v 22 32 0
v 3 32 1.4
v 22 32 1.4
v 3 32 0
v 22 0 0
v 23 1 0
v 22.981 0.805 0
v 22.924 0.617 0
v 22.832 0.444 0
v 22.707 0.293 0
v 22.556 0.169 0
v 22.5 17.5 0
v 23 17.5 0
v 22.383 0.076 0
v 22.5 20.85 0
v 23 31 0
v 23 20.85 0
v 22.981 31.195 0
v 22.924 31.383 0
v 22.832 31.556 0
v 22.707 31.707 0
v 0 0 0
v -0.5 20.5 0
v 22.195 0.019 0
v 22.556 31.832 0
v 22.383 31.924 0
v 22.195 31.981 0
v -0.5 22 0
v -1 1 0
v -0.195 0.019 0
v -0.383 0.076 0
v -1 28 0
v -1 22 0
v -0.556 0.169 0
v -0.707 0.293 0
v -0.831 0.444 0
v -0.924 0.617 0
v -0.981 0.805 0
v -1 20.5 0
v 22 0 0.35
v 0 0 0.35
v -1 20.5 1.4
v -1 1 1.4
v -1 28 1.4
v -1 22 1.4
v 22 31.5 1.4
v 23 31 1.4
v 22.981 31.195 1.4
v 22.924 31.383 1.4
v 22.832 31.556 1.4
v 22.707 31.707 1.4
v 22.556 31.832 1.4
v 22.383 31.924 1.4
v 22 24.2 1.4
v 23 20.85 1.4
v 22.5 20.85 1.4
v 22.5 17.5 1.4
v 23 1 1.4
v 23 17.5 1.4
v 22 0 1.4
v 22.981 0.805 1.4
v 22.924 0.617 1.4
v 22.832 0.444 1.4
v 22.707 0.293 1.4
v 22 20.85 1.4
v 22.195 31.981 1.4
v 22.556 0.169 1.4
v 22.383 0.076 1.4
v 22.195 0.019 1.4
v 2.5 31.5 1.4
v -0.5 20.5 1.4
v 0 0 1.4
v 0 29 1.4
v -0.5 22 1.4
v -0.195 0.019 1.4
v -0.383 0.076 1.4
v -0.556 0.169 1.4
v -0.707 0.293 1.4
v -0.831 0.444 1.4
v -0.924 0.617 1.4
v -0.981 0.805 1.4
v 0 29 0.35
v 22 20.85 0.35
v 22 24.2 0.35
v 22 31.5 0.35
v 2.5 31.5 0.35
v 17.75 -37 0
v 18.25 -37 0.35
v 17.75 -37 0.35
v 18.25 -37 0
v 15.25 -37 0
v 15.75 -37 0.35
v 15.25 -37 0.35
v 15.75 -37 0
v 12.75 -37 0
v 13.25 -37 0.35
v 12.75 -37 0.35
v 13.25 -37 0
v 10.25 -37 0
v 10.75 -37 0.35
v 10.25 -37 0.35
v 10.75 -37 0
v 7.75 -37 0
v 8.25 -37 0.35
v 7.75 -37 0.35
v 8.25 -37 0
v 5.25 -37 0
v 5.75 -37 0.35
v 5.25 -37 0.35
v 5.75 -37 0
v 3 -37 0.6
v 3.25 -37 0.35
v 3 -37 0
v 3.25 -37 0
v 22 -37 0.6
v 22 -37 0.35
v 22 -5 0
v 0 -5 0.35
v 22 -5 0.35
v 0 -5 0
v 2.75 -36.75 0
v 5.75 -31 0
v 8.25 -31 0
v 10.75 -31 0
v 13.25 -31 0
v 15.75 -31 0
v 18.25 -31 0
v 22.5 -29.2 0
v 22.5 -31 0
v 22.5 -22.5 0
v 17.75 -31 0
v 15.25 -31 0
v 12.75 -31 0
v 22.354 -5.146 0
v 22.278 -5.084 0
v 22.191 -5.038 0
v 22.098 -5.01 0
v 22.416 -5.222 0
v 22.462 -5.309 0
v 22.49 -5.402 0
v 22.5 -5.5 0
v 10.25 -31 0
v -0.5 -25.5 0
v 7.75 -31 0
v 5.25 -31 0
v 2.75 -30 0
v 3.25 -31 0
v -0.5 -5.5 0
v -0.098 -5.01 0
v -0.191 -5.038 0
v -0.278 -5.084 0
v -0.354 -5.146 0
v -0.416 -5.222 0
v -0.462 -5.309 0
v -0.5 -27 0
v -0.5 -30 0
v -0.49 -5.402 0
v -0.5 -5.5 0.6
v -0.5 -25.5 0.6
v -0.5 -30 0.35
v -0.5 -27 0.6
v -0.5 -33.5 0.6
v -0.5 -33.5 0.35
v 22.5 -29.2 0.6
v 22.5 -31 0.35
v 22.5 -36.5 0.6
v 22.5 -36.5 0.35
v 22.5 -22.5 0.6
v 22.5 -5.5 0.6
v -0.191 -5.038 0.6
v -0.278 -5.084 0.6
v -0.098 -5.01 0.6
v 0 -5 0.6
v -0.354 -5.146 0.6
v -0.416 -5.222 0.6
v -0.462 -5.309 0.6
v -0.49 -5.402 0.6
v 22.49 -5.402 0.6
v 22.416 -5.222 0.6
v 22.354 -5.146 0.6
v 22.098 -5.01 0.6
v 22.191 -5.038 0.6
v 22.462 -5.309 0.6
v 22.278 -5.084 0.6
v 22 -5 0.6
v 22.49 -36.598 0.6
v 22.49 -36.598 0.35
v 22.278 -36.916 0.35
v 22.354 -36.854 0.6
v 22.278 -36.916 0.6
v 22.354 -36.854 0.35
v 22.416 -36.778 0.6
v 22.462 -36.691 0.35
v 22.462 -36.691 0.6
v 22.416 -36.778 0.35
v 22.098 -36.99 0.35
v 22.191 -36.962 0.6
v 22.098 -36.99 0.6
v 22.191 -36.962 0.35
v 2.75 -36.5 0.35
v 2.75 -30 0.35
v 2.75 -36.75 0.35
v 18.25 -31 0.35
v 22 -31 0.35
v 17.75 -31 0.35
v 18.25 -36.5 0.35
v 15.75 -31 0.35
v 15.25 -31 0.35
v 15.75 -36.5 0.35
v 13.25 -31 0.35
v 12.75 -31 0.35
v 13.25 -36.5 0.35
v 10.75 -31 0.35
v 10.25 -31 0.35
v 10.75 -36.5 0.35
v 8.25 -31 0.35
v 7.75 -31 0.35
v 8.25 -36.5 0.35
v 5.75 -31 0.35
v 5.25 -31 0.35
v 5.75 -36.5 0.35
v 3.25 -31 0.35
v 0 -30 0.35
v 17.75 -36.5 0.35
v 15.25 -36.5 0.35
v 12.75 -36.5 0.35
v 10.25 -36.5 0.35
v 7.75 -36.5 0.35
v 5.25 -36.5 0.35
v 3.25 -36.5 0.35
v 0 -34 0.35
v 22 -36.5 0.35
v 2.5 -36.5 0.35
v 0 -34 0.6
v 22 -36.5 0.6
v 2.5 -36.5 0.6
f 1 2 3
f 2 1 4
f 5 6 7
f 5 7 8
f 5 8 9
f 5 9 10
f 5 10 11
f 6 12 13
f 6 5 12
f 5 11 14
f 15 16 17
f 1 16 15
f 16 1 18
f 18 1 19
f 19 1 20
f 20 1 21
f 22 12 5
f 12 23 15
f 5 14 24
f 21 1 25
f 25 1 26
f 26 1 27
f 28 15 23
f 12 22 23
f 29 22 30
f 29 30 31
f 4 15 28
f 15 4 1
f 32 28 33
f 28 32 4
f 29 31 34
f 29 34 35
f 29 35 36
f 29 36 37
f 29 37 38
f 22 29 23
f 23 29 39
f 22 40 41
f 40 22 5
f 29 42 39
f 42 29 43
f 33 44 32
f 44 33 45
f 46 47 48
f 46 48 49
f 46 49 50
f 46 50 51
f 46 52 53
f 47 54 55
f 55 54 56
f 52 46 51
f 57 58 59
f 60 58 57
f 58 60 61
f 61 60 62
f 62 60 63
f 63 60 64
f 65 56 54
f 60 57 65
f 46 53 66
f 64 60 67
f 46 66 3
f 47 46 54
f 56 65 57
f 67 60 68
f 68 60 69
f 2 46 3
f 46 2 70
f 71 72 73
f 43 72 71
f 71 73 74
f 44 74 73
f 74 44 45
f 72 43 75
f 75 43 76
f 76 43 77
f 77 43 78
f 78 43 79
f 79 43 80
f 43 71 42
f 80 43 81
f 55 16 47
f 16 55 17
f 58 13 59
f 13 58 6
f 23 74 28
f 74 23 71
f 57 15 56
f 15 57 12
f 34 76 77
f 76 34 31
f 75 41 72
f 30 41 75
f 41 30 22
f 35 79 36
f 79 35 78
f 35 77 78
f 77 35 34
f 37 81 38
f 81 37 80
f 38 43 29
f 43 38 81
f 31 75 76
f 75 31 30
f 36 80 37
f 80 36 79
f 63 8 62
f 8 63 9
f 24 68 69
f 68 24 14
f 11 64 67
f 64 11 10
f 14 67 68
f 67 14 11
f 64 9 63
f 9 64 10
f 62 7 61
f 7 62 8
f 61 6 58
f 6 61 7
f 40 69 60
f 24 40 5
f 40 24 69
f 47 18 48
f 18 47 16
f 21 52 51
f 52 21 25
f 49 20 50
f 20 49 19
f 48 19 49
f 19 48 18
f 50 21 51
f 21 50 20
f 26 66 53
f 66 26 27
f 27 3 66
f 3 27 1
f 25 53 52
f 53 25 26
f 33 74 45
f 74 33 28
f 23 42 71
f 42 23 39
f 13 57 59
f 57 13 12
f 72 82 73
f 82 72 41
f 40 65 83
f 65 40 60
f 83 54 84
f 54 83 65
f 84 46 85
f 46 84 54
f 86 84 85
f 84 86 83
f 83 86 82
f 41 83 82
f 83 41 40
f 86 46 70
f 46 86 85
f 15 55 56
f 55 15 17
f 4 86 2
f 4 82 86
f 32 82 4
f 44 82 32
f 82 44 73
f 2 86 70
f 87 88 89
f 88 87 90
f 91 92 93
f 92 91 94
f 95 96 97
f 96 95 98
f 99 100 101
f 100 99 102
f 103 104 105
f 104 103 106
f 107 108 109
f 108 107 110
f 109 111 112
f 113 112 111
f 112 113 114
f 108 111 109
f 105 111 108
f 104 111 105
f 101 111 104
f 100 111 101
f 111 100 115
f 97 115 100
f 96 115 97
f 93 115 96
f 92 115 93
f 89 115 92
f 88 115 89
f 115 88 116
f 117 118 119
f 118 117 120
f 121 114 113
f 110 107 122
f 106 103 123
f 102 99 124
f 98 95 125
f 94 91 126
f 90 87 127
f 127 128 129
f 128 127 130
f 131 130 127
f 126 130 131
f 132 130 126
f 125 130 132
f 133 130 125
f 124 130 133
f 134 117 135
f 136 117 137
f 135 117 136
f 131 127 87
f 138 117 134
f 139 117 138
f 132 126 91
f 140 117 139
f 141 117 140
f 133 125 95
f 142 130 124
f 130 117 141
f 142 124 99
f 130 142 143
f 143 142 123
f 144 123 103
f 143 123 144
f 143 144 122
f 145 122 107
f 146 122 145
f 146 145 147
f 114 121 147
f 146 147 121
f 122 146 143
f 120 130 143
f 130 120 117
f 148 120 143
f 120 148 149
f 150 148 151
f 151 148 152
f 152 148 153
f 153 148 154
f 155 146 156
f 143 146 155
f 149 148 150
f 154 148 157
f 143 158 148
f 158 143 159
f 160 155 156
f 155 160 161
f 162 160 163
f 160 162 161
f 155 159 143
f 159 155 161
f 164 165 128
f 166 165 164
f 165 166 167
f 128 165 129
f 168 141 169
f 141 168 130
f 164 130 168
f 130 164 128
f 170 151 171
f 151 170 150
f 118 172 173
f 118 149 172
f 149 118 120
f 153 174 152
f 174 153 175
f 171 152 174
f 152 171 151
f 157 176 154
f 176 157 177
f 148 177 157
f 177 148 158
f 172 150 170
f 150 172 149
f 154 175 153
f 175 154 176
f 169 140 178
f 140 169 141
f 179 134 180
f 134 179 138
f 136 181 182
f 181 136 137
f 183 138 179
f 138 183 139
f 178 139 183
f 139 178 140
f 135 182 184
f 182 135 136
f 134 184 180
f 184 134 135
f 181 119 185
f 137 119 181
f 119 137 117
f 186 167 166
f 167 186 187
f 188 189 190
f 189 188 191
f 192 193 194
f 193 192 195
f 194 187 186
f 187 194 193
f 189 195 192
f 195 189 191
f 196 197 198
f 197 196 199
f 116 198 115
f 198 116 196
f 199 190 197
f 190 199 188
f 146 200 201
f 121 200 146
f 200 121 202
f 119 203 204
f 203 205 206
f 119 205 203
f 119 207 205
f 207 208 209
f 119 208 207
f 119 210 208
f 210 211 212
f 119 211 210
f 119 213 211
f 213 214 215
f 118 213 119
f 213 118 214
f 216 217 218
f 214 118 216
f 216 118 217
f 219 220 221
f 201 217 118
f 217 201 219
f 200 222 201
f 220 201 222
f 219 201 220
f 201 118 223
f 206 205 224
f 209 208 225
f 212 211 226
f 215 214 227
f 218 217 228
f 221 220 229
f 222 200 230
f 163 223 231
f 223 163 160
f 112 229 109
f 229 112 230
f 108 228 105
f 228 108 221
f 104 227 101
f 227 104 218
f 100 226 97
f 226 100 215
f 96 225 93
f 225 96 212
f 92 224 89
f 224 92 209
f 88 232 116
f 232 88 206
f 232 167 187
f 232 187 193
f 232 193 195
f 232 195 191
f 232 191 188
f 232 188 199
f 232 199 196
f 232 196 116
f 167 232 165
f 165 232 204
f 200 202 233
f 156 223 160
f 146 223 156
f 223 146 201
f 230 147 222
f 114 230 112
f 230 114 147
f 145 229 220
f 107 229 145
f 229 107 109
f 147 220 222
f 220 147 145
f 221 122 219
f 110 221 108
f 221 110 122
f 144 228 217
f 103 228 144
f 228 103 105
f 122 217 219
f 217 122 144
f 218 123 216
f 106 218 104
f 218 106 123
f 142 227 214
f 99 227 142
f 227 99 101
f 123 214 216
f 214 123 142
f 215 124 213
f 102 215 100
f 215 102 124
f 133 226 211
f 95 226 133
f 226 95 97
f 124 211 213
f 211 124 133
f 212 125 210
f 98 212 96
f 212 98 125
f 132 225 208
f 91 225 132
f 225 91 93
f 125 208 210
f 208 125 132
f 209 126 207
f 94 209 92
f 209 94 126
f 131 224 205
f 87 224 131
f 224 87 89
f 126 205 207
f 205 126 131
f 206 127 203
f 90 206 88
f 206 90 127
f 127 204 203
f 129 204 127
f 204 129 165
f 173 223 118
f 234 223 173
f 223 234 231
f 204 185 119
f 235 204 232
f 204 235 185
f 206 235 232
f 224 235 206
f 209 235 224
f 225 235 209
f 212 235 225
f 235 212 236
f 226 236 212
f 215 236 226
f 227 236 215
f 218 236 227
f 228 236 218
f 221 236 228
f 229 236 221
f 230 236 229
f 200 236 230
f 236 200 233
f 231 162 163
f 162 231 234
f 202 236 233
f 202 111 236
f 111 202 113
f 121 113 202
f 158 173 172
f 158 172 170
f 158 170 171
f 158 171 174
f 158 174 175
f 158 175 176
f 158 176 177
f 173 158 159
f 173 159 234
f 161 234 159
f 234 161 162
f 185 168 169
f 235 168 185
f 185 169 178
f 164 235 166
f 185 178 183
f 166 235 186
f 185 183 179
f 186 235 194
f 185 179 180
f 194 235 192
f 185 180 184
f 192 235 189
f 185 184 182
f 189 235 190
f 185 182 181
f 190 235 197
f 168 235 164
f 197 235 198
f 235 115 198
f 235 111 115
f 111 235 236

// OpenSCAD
$fa=0.1;
$fn=32;

SOCLE =1.4;

module SdCard() {
    difference() {
        union() {
            difference() {
                union() {
                    // Plein gauche/droite
                    cube([22, 32, SOCLE]);
                    cube([22, 32, 2]);
                    // Plein avant/arriere
                    translate ([-1, 1, 0]) cube([24, 30, SOCLE]);
                    translate ([-0.5, 0.5, 0]) cube([23, 31, 2]);
                    // Coin bas gauche
                    translate([0, 1, 0])cylinder(h=SOCLE, r=1);
                    translate([0, 0.5, 0])cylinder(h=2, r=0.5);
                    // Coin bas droit
                    translate([22, 1, 0]) cylinder(h=SOCLE, r=1);
                    translate([22, 0.5, 0])cylinder(h=2, r=0.5);
                    // Coin haut droit
                    translate([22, 31, 0]) cylinder(h=SOCLE, r=1);
                    translate([22, 31.5, 0])cylinder(h=2, r=0.5);
                }
                // Pins 1 à 8
                // translate ([-5, 26.05, 1.4]) cube([50, 8, 1], center=false);
                // Pins 9
                // translate ([-6, 24.05, 1.4]) cube([9, 8, 1], center=false);
                
                translate ([ 0.25, 30, 2]) cube([5, 10, 0.7], center=true);
                translate ([ 4.25, 30, 2]) cube([2, 8, 0.7], center=true);
                translate ([ 6.75, 30, 2]) cube([2, 8, 0.7], center=true);
                translate ([ 9.25, 30, 2]) cube([2, 8, 0.7], center=true);
                translate ([11.75, 30, 2]) cube([2, 8, 0.7], center=true);
                translate ([14.25, 30, 2]) cube([2, 8, 0.7], center=true);
                translate ([16.75, 30, 2]) cube([2, 8, 0.7], center=true);
                translate ([21   , 30, 2]) cube([5.5, 8, 0.7], center=true);
                
                // Cut
                translate ([-5, 20.5, -1]) cube([4.5, 1.5, 4], center=false);
                // Lock cut
                translate ([22.5, 17.5, -1]) cube([5, 6.7, 4], center=false);
                // inner space
                translate ([0, -0.5, 0.35]) cube([22, 32, 1.3], center=false);
                
            }
            // Not locked
            translate ([22, 20.85, 0]) cube([1, 3.35, 1.4], center=false);
            // Pin separators
/*
            translate ([ 3  , 28, 1]) cube([0.5, 8, 2], center=true);
            translate ([ 5.5, 28, 1]) cube([0.5, 8, 2], center=true);
            translate ([ 8  , 28, 1]) cube([0.5, 8, 2], center=true);
            translate ([10.5, 28, 1]) cube([0.5, 8, 2], center=true);
            translate ([13  , 28, 1]) cube([0.5, 8, 2], center=true);
            translate ([15.5, 28, 1]) cube([0.5, 8, 2], center=true);
            translate ([18  , 28, 1]) cube([0.5, 8, 2], center=true);
*/
        }
        // Angle coupé
        translate ([-1, 28, -1]) rotate(a=[0, 0, 45]) cube([8, 4, 4], center=false);
    }
}


difference() {
    SdCard();
    translate ([0, 0, 2]) cube([100, 100, 1.2], center=true);
}

difference() {
    translate ([0, -5, 2]) rotate(a=[180, 0, 0])
        SdCard();
    translate ([0, 0, 2]) cube([100, 100, 2.8], center=true);
}
